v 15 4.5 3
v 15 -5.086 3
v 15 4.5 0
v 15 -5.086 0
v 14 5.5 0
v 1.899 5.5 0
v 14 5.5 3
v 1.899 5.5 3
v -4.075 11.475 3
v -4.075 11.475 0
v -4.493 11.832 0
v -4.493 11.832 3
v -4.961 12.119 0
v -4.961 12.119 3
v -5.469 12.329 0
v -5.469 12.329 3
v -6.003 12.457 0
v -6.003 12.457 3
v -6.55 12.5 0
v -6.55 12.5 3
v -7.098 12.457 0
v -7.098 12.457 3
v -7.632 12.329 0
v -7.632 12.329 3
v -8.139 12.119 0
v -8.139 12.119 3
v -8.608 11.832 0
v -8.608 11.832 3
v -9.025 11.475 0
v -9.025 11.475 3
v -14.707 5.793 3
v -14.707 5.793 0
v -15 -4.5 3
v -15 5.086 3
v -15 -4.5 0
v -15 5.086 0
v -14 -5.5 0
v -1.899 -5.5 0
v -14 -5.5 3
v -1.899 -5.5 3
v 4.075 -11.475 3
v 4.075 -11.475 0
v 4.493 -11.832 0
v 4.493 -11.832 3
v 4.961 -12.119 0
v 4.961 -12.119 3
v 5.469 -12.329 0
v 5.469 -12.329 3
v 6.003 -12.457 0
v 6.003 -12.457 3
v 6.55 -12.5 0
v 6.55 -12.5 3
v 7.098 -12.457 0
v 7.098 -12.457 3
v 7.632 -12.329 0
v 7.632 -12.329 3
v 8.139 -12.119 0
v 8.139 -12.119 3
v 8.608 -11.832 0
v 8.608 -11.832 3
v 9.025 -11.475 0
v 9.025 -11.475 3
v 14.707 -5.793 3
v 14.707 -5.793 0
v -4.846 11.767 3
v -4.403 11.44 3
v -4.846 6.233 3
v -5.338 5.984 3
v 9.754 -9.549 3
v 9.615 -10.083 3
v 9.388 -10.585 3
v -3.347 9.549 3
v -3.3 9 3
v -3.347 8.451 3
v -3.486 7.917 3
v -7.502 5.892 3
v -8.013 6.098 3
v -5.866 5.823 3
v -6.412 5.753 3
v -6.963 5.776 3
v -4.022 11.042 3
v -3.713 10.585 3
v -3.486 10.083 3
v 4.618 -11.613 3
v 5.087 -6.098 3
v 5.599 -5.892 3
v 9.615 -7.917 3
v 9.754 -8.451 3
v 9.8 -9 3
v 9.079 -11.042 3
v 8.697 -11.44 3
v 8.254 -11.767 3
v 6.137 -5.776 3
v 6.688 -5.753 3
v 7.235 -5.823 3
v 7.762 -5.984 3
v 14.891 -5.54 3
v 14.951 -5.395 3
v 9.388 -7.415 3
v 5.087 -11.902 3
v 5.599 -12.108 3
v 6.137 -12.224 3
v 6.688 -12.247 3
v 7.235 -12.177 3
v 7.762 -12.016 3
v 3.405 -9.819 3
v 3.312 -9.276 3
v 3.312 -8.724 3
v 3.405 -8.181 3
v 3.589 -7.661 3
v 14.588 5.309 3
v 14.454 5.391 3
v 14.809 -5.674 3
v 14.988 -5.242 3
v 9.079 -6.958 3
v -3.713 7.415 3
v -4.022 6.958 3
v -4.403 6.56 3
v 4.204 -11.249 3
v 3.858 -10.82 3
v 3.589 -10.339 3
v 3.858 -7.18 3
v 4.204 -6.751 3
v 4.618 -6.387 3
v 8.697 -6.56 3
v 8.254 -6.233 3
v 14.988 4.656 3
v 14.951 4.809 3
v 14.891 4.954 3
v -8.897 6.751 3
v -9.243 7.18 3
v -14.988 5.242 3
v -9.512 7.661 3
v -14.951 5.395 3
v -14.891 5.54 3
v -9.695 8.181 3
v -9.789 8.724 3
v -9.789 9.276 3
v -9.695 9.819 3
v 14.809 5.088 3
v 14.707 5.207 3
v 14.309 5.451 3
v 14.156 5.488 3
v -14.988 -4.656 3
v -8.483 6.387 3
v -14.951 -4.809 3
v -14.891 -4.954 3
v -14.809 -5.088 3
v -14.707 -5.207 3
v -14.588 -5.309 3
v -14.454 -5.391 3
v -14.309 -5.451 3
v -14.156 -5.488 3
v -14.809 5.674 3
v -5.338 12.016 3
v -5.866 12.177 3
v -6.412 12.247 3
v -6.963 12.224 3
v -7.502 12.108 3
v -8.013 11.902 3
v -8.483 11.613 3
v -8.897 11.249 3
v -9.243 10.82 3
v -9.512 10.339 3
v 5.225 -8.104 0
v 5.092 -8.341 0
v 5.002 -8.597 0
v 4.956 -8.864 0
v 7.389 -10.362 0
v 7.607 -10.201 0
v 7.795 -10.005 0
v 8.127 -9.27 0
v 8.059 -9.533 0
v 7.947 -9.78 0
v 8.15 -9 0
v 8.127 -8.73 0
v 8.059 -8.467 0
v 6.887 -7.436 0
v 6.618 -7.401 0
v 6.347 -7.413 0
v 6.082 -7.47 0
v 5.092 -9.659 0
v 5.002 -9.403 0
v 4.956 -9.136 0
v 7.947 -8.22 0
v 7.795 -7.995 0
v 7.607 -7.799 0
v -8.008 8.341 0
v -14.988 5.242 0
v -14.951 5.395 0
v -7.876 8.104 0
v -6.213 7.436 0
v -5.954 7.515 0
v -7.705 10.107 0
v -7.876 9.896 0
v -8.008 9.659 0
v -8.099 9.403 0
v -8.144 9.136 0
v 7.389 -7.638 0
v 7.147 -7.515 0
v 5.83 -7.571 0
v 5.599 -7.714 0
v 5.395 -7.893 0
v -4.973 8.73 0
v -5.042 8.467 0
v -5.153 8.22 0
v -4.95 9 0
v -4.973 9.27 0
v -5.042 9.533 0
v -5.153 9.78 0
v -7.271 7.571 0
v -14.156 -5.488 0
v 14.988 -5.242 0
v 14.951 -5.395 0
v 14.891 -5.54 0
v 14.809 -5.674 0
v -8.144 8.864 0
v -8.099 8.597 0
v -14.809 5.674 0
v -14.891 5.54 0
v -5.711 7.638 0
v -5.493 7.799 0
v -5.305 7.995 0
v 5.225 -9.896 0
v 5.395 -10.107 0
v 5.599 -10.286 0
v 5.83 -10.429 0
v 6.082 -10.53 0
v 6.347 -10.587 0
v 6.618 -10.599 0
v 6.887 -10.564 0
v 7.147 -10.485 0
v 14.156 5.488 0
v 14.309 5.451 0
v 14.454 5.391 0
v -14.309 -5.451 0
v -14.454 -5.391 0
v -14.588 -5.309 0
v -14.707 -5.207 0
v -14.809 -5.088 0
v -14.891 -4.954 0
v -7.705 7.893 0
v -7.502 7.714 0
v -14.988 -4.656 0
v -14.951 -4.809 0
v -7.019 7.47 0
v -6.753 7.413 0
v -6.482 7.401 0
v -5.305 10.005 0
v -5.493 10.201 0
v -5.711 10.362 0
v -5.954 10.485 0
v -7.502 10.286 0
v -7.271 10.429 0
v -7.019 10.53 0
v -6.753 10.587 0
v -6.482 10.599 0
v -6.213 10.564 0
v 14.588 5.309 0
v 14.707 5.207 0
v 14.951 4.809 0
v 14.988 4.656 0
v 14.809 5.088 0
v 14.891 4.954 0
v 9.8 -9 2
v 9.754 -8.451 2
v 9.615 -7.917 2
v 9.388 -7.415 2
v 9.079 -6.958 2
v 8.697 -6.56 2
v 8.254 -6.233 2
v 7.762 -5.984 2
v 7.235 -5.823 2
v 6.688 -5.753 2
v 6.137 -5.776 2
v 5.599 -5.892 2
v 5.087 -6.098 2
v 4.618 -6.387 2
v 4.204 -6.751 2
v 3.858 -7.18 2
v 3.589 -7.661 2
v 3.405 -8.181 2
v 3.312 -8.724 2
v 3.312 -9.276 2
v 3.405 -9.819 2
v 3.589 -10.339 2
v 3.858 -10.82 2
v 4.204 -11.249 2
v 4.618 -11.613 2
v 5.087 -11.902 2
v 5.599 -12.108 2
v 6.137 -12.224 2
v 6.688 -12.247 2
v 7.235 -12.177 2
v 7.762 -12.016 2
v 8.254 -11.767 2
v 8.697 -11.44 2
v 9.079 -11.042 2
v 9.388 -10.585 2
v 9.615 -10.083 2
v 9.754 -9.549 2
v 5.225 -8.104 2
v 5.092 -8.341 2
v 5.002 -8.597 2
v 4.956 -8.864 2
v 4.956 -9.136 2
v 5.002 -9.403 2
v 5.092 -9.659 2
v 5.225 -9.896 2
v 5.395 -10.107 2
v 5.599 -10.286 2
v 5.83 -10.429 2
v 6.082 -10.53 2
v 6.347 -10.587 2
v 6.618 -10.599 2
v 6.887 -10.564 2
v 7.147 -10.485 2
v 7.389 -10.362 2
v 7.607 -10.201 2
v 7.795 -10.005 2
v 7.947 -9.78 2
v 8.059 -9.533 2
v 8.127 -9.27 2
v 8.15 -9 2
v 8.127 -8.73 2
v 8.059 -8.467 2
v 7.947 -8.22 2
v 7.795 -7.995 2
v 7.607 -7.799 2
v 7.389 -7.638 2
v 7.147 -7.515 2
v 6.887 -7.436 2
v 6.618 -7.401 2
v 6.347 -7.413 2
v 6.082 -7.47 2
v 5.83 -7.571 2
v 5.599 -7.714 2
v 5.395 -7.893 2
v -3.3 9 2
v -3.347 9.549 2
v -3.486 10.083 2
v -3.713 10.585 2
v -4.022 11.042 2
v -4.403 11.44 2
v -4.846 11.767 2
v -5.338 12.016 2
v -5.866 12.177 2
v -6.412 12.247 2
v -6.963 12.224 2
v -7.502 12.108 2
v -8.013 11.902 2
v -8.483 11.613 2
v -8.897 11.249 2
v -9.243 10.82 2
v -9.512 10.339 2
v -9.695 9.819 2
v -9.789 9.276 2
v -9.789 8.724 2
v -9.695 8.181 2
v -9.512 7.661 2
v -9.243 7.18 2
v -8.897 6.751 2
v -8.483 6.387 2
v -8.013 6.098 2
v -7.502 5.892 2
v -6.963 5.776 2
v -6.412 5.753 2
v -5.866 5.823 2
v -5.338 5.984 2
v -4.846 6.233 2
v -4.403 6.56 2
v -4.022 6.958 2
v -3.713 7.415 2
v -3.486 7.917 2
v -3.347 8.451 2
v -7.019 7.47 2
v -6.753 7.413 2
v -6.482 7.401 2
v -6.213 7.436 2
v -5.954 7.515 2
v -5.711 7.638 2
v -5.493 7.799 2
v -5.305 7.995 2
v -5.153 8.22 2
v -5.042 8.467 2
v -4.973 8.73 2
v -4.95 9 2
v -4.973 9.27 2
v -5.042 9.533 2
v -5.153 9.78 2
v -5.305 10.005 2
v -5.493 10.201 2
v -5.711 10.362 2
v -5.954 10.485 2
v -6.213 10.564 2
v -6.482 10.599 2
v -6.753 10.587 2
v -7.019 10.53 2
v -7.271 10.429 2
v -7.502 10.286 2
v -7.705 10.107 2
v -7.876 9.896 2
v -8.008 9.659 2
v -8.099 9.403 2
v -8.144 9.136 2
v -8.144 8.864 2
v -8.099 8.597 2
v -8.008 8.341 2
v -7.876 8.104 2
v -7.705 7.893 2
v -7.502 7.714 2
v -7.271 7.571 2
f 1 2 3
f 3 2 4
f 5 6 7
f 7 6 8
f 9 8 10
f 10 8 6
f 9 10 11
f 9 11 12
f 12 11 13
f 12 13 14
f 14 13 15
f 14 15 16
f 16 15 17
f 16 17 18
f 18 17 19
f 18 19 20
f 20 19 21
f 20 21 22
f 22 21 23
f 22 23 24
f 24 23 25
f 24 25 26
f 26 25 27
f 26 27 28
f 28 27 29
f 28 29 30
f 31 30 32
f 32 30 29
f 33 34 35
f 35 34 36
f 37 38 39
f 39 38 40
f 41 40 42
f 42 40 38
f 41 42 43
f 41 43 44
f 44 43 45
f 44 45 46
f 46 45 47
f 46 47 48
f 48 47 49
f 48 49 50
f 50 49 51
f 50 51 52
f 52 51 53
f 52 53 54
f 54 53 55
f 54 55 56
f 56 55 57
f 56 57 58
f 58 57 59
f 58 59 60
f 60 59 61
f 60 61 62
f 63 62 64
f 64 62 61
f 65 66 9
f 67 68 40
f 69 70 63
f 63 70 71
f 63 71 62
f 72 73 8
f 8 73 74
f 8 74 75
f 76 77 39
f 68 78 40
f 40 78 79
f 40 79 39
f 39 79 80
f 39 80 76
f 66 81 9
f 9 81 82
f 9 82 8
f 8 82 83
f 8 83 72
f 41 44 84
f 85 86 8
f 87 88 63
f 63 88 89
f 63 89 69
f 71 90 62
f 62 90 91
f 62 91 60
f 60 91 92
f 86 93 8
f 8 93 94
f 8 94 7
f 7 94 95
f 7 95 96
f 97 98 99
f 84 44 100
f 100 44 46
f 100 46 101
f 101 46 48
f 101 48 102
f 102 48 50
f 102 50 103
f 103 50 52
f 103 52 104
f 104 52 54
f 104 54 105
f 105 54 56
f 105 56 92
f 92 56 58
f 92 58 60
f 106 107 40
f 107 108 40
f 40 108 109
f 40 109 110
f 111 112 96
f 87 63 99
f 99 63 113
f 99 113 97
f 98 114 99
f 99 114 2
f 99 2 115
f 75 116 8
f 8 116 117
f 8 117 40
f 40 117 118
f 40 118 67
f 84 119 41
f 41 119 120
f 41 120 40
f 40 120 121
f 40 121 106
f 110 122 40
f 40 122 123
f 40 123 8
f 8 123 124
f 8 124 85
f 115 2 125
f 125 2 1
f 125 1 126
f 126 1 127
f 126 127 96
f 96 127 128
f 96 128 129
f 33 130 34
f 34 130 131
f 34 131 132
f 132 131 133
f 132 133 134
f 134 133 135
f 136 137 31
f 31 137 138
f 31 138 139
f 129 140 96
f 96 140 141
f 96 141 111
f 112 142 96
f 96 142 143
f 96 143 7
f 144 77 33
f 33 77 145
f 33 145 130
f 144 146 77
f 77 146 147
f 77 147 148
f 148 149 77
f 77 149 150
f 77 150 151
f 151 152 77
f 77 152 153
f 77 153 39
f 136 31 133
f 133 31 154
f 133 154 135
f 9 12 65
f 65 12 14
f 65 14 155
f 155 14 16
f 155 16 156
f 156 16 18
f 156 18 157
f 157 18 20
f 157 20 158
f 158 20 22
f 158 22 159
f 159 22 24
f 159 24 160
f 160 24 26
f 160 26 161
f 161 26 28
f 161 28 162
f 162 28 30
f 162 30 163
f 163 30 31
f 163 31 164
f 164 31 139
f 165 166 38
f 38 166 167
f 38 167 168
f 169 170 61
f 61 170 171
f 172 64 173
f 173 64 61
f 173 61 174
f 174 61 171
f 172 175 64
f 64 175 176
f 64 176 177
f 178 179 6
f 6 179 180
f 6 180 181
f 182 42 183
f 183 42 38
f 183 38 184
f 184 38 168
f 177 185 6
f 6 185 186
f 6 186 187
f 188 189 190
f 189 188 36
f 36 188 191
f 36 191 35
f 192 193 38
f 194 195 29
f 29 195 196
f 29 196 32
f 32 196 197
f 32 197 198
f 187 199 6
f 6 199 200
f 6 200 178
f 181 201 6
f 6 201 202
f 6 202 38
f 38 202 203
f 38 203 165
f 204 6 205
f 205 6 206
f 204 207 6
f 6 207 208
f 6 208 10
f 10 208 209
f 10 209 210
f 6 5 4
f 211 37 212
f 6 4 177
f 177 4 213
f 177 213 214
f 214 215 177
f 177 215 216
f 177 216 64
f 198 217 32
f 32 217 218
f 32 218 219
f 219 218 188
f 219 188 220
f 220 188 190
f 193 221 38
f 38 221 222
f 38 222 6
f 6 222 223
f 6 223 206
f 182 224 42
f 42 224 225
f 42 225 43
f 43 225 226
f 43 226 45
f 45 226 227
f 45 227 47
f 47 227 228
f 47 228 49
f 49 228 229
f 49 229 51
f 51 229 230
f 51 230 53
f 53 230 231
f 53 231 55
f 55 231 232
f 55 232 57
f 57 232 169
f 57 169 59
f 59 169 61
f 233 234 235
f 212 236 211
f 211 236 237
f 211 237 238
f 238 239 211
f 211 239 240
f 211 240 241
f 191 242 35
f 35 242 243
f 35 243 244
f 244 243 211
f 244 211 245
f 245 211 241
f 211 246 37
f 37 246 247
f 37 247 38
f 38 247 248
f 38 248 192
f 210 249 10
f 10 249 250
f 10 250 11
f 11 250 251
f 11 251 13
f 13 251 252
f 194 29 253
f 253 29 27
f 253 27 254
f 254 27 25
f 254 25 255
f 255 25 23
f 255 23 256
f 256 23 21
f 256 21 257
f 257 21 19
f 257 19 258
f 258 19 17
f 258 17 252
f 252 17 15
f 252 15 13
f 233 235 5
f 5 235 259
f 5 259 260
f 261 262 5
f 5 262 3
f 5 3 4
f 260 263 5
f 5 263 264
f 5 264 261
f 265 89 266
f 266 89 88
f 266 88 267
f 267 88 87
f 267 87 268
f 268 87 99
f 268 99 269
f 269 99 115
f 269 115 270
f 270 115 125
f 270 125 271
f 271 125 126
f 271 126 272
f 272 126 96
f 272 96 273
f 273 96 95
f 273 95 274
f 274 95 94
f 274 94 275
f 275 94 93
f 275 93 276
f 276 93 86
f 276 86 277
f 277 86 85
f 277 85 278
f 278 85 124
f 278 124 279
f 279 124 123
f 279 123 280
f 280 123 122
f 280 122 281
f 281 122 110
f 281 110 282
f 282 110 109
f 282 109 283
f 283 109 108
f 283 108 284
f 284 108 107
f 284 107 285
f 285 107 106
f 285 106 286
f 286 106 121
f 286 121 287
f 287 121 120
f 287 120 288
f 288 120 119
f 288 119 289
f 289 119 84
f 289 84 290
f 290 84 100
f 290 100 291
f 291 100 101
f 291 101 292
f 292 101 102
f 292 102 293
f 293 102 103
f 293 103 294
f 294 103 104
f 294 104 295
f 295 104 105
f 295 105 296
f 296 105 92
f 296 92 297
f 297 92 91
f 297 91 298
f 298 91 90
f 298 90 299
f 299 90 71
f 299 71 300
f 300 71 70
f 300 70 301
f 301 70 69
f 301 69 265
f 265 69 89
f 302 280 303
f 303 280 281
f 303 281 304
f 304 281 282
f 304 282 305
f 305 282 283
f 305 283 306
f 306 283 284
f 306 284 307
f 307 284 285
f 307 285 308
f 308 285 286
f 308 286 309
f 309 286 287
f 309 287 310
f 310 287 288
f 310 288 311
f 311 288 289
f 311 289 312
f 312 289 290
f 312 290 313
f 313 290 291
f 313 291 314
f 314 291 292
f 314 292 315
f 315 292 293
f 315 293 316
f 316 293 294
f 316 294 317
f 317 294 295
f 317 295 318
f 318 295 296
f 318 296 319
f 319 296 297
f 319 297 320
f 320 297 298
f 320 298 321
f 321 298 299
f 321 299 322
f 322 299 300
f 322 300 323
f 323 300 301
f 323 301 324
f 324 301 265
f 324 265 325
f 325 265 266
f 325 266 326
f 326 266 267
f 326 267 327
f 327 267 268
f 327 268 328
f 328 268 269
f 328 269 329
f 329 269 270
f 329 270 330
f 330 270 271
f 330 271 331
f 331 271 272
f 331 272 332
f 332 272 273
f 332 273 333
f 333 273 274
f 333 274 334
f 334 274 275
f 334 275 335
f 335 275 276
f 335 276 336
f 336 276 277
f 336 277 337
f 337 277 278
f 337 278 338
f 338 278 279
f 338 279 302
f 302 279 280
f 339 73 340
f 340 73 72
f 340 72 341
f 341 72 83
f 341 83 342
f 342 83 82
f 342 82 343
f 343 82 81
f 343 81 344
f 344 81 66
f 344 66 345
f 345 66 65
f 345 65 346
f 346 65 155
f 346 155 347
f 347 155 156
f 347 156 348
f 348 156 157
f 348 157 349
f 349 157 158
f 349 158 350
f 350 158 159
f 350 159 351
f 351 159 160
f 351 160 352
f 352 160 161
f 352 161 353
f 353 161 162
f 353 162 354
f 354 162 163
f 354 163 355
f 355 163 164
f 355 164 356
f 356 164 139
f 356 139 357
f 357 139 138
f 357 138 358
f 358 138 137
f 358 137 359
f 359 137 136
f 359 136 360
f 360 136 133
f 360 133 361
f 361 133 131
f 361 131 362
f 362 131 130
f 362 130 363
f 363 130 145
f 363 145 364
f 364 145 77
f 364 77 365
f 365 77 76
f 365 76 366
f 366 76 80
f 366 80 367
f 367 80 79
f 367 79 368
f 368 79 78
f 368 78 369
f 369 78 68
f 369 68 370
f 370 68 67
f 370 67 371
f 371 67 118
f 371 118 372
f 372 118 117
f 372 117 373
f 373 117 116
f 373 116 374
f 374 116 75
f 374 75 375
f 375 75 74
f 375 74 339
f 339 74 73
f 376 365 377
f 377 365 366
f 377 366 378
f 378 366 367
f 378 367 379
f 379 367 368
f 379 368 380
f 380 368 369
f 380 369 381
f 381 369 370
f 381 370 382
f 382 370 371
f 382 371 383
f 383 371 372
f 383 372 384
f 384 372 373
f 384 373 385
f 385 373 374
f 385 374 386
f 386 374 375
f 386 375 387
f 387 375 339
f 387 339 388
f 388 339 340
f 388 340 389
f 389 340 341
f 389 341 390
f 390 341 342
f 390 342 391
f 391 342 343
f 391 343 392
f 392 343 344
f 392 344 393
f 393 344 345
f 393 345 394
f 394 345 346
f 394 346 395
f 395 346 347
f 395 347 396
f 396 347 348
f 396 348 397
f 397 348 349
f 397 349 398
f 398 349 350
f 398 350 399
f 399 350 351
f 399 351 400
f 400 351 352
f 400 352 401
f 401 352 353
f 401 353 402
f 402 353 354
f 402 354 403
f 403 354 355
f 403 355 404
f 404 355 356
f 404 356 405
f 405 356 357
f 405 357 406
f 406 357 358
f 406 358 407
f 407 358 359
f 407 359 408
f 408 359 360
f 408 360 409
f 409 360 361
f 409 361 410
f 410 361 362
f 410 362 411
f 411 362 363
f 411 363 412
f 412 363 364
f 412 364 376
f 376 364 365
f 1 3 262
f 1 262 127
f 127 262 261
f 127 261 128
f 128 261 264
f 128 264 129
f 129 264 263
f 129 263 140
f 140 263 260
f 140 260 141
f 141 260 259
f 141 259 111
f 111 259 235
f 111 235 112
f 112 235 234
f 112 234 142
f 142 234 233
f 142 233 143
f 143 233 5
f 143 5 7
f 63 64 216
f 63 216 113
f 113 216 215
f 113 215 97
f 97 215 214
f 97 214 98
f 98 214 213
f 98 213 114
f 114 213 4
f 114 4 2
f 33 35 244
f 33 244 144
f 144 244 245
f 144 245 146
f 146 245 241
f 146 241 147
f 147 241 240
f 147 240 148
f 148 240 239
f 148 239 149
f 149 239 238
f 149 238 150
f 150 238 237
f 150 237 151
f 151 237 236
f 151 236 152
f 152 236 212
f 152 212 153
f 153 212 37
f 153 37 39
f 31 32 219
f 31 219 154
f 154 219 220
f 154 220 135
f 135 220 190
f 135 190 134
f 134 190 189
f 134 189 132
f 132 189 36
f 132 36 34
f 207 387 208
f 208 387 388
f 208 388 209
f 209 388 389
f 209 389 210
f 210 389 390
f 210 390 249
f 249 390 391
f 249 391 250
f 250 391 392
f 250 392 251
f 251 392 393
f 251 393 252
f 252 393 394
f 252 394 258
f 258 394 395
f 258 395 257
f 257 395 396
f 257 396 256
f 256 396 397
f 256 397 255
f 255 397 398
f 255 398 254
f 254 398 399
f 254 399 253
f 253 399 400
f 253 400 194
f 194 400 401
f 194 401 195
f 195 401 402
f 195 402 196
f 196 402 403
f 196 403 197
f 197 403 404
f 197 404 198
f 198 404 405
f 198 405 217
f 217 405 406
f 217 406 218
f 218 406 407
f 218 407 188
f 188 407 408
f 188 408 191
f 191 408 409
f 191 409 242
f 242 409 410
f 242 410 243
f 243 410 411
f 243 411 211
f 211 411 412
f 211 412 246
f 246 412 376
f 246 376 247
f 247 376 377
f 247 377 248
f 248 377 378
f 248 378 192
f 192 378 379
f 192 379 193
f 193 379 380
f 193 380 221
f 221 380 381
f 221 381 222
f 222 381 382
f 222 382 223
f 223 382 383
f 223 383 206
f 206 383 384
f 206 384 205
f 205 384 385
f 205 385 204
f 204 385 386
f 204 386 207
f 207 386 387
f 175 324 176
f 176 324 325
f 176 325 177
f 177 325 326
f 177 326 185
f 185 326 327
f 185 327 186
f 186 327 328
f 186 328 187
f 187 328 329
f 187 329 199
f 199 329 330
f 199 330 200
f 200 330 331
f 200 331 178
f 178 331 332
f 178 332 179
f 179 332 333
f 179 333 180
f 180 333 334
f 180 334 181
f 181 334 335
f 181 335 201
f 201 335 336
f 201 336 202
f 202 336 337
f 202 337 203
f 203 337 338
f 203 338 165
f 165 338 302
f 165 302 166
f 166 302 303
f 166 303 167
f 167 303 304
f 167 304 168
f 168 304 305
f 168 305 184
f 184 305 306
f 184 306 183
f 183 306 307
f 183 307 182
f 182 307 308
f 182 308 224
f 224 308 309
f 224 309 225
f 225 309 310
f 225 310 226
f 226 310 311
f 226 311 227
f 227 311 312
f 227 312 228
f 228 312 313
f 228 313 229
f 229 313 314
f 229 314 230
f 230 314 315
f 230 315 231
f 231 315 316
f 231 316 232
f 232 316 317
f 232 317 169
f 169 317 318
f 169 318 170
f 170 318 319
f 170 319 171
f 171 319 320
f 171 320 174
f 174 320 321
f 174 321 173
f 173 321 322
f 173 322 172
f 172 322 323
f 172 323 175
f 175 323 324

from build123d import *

# Parameters (mm, degrees)
EXTRUDE_1_DEPTH     = 3
SKETCH_3_R          = 3.25
CUT_EXTRUDE_1_DEPTH = 1
FILLET_1_R          = 1
SKETCH_6_R          = 1.6
CUT_EXTRUDE_3_DEPTH = 20.754746265


with BuildPart() as part:
    # 草图1 → 凸台-拉伸1 (new body)
    with BuildSketch(Plane.XY):
        with BuildLine():
            Line((15, 5.5), (1.899494937, 5.5))
            Line((1.899494937, 5.5), (-4.075378798, 11.474873734))
            ThreePointArc((-4.075378798, 11.474873734), (-6.550252532, 12.5), (-9.025126266, 11.474873734))
            Line((-9.025126266, 11.474873734), (-15, 5.5))
            Line((-15, 5.5), (-15, -5.5))
            Line((-15, -5.5), (-1.899494937, -5.5))
            Line((-1.899494937, -5.5), (4.075378798, -11.474873734))
            ThreePointArc((4.075378798, -11.474873734), (6.550252532, -12.5), (9.025126266, -11.474873734))
            Line((9.025126266, -11.474873734), (15, -5.5))
            Line((15, -5.5), (15, 5.5))
        make_face()
    extrude(amount=EXTRUDE_1_DEPTH)

    # 草图3 → 切除-拉伸1 (cut)
    with BuildSketch(Plane.XY.offset(3)):
        with Locations((-6.550252532, 9)):
            Circle(SKETCH_3_R)
        with Locations((6.550252532, -9)):
            Circle(SKETCH_3_R)
    extrude(amount=-CUT_EXTRUDE_1_DEPTH, mode=Mode.SUBTRACT)

    # 圆角1
    fillet_1_edges = [part.edges().sort_by_distance(p)[0] for p in [
        (15, -5.5, 1.5),
        (-15, -5.5, 1.5),
        (-15, 5.5, 1.5),
        (15, 5.5, 1.5),
    ]]
    fillet(fillet_1_edges, radius=FILLET_1_R)

    # 草图6 → 切除-拉伸3 (cut, through all)
    with BuildSketch(Plane.XY.offset(3)):
        with Locations((-6.550252532, 9)):
            Circle(SKETCH_6_R)
        with Locations((6.550252532, -9)):
            Circle(SKETCH_6_R)
    extrude(amount=-CUT_EXTRUDE_3_DEPTH, mode=Mode.SUBTRACT)


solid = part.part
